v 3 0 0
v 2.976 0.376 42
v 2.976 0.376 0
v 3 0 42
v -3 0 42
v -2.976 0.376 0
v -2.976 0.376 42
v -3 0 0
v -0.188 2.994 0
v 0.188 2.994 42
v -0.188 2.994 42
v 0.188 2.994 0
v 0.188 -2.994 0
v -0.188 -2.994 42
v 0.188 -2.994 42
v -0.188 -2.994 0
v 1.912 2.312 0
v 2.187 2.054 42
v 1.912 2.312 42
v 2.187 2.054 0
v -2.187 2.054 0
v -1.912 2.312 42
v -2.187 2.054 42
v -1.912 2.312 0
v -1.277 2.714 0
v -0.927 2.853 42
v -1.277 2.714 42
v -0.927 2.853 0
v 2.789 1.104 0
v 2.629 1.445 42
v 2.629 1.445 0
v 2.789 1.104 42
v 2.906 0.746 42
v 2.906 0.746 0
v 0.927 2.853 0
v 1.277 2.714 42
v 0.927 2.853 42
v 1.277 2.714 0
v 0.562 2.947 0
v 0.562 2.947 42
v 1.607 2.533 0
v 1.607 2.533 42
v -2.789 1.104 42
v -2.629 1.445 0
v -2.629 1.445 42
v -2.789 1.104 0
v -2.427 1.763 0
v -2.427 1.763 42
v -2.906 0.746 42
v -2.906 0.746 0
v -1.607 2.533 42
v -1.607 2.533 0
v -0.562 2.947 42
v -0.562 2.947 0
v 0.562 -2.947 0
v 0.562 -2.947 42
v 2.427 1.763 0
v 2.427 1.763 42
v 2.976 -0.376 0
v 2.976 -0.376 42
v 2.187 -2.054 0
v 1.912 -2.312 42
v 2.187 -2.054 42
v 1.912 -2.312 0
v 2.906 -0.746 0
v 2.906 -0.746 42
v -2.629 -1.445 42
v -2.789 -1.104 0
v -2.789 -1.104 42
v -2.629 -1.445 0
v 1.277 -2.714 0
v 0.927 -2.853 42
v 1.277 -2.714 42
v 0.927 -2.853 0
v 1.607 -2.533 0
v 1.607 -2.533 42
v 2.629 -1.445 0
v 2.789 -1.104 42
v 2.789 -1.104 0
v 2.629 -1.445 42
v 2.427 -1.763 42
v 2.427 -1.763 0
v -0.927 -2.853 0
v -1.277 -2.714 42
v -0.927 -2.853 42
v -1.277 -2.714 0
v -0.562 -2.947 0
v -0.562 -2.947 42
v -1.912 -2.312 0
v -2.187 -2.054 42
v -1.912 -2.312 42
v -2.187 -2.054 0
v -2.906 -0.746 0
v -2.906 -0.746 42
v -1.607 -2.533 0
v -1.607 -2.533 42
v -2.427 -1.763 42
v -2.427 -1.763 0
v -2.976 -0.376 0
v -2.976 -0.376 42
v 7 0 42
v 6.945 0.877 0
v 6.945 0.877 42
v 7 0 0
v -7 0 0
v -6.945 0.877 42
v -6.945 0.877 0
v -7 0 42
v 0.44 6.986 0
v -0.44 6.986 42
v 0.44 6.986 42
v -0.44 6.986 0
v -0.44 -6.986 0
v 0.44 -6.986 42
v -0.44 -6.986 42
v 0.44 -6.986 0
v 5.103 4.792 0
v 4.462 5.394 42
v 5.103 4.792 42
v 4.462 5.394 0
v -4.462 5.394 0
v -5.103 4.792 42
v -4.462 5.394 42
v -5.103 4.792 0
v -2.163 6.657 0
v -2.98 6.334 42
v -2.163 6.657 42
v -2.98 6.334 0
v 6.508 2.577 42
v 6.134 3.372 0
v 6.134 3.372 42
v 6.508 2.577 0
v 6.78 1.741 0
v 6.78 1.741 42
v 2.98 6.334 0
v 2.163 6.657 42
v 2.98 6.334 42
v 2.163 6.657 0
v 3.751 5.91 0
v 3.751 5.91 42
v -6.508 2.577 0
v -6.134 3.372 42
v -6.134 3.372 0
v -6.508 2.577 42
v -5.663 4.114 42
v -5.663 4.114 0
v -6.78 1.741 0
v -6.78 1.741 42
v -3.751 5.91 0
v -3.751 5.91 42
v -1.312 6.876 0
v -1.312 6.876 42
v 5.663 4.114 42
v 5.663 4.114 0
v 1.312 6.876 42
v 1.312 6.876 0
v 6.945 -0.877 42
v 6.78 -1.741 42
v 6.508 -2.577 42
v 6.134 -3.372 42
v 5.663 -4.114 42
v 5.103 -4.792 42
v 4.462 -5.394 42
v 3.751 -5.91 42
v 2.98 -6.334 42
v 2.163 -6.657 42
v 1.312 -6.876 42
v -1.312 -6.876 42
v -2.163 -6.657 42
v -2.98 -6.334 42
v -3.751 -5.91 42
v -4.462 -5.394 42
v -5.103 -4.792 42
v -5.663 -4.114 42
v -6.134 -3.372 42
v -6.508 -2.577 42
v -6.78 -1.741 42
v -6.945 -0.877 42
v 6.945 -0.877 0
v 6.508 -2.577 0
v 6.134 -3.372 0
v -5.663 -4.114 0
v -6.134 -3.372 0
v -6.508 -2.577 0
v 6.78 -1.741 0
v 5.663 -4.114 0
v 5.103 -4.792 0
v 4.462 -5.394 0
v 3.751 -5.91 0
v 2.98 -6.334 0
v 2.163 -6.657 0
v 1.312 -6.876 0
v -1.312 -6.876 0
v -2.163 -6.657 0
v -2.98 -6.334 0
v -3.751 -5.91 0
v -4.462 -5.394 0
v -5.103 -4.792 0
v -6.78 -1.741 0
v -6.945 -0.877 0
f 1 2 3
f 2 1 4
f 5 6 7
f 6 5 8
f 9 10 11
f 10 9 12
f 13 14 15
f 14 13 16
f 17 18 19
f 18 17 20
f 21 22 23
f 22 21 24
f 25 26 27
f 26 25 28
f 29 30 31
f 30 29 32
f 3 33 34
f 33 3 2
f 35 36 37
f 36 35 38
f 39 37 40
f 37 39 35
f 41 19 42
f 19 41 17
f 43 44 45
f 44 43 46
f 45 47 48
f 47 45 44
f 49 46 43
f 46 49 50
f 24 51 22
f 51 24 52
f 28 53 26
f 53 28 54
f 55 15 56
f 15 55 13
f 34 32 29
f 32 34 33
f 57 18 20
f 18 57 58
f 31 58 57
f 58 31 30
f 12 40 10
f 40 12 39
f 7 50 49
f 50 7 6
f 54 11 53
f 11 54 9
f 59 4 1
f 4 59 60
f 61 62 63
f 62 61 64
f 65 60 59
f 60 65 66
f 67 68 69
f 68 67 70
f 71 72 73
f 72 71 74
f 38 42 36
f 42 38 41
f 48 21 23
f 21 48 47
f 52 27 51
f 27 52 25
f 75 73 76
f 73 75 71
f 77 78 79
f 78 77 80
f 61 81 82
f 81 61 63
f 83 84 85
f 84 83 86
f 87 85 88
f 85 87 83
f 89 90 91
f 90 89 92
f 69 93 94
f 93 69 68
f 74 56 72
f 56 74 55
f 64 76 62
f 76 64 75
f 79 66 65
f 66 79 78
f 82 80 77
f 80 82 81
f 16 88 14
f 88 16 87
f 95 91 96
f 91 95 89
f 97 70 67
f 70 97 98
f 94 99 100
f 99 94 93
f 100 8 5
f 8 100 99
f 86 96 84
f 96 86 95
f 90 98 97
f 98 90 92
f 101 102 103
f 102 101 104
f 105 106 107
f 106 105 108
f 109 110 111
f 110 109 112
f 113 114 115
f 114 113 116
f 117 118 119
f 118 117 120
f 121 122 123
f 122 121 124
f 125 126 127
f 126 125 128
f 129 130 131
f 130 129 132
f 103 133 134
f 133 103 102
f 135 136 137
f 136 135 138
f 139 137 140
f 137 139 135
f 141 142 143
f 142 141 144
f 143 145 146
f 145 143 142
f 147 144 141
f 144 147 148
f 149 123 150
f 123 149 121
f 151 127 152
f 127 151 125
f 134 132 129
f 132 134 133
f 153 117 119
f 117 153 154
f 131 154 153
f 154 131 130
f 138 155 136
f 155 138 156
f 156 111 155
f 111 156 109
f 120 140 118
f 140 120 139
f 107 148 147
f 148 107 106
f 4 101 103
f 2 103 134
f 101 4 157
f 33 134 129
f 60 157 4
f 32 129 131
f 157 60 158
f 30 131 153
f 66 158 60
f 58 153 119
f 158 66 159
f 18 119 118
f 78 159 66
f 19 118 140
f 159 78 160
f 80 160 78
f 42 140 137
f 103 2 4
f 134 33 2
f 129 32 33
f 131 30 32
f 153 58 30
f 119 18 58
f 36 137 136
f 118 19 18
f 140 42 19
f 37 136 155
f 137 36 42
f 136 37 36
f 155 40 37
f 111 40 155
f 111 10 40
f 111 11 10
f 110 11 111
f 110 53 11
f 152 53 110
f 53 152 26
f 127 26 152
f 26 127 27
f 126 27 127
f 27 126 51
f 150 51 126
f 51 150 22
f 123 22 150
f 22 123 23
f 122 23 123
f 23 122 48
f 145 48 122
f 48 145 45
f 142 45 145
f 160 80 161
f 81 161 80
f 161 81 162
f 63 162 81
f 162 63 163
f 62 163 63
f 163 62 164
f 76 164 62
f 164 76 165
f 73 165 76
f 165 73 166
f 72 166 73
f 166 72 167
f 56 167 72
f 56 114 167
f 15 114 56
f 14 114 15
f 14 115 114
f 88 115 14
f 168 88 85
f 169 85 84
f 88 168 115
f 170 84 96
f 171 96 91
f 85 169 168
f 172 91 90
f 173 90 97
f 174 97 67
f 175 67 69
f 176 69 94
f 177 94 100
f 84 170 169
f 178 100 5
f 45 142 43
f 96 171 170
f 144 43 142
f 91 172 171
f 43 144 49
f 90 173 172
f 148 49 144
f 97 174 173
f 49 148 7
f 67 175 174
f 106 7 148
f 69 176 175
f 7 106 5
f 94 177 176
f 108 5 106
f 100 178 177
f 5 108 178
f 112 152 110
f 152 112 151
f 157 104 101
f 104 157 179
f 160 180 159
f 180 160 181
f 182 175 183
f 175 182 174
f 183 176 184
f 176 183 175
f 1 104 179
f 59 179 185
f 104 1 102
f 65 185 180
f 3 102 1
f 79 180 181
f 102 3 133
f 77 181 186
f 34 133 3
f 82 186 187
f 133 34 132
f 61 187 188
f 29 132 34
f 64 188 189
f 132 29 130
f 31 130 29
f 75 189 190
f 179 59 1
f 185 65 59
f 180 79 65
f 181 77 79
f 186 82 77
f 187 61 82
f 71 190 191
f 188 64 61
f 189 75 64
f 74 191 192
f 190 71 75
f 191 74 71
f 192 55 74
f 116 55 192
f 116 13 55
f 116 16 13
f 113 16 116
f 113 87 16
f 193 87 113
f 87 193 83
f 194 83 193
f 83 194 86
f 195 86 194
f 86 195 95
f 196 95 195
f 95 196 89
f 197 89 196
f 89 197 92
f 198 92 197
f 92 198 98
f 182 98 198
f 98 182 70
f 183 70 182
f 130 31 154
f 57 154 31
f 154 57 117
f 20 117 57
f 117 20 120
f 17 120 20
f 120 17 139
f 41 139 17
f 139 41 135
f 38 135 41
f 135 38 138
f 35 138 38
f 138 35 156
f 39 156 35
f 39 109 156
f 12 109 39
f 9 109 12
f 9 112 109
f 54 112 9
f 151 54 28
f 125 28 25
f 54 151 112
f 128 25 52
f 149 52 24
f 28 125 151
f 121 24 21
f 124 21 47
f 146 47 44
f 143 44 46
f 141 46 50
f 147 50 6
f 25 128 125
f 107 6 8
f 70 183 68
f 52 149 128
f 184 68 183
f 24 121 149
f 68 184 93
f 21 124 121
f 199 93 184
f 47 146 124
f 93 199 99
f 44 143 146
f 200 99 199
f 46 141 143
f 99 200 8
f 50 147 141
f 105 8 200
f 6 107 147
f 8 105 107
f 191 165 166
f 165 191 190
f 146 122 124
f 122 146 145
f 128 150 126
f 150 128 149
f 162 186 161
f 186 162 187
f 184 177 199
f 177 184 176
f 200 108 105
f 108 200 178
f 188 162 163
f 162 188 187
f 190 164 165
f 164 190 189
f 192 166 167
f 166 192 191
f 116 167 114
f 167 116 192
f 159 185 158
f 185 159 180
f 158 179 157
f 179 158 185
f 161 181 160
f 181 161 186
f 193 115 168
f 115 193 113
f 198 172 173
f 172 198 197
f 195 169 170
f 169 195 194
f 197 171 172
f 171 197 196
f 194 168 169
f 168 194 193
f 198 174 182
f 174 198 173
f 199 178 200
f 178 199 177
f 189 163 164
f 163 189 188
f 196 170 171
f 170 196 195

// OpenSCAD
$fn = 50;


difference() {
	union() {
		*color(alpha = 1.0000000000, c = "gray") {
			translate(v = [0, 7, 0]) {
				linear_extrude(height = 1) {
					text(font = "Arial:style=Bold", halign = "center", size = 4.5000000000, text = "COMMENT plate main", valign = "center");
				}
			}
		}
		cylinder(h = 42, r = 7.0000000000);
	}
	union() {
		*color(alpha = 1.0000000000, c = "gray") {
			translate(v = [0, 7, 0]) {
				linear_extrude(height = 1) {
					text(font = "Arial:style=Bold", halign = "center", size = 4.5000000000, text = "COMMENT holes main", valign = "center");
				}
			}
		}
		translate(v = [0, 0, -100]) {
			cylinder(h = 200, r = 3.0000000000);
		}
		translate(v = [0, 0, -100]) {
			cylinder(h = 200, r = 1.5000000000);
		}
	}
}
